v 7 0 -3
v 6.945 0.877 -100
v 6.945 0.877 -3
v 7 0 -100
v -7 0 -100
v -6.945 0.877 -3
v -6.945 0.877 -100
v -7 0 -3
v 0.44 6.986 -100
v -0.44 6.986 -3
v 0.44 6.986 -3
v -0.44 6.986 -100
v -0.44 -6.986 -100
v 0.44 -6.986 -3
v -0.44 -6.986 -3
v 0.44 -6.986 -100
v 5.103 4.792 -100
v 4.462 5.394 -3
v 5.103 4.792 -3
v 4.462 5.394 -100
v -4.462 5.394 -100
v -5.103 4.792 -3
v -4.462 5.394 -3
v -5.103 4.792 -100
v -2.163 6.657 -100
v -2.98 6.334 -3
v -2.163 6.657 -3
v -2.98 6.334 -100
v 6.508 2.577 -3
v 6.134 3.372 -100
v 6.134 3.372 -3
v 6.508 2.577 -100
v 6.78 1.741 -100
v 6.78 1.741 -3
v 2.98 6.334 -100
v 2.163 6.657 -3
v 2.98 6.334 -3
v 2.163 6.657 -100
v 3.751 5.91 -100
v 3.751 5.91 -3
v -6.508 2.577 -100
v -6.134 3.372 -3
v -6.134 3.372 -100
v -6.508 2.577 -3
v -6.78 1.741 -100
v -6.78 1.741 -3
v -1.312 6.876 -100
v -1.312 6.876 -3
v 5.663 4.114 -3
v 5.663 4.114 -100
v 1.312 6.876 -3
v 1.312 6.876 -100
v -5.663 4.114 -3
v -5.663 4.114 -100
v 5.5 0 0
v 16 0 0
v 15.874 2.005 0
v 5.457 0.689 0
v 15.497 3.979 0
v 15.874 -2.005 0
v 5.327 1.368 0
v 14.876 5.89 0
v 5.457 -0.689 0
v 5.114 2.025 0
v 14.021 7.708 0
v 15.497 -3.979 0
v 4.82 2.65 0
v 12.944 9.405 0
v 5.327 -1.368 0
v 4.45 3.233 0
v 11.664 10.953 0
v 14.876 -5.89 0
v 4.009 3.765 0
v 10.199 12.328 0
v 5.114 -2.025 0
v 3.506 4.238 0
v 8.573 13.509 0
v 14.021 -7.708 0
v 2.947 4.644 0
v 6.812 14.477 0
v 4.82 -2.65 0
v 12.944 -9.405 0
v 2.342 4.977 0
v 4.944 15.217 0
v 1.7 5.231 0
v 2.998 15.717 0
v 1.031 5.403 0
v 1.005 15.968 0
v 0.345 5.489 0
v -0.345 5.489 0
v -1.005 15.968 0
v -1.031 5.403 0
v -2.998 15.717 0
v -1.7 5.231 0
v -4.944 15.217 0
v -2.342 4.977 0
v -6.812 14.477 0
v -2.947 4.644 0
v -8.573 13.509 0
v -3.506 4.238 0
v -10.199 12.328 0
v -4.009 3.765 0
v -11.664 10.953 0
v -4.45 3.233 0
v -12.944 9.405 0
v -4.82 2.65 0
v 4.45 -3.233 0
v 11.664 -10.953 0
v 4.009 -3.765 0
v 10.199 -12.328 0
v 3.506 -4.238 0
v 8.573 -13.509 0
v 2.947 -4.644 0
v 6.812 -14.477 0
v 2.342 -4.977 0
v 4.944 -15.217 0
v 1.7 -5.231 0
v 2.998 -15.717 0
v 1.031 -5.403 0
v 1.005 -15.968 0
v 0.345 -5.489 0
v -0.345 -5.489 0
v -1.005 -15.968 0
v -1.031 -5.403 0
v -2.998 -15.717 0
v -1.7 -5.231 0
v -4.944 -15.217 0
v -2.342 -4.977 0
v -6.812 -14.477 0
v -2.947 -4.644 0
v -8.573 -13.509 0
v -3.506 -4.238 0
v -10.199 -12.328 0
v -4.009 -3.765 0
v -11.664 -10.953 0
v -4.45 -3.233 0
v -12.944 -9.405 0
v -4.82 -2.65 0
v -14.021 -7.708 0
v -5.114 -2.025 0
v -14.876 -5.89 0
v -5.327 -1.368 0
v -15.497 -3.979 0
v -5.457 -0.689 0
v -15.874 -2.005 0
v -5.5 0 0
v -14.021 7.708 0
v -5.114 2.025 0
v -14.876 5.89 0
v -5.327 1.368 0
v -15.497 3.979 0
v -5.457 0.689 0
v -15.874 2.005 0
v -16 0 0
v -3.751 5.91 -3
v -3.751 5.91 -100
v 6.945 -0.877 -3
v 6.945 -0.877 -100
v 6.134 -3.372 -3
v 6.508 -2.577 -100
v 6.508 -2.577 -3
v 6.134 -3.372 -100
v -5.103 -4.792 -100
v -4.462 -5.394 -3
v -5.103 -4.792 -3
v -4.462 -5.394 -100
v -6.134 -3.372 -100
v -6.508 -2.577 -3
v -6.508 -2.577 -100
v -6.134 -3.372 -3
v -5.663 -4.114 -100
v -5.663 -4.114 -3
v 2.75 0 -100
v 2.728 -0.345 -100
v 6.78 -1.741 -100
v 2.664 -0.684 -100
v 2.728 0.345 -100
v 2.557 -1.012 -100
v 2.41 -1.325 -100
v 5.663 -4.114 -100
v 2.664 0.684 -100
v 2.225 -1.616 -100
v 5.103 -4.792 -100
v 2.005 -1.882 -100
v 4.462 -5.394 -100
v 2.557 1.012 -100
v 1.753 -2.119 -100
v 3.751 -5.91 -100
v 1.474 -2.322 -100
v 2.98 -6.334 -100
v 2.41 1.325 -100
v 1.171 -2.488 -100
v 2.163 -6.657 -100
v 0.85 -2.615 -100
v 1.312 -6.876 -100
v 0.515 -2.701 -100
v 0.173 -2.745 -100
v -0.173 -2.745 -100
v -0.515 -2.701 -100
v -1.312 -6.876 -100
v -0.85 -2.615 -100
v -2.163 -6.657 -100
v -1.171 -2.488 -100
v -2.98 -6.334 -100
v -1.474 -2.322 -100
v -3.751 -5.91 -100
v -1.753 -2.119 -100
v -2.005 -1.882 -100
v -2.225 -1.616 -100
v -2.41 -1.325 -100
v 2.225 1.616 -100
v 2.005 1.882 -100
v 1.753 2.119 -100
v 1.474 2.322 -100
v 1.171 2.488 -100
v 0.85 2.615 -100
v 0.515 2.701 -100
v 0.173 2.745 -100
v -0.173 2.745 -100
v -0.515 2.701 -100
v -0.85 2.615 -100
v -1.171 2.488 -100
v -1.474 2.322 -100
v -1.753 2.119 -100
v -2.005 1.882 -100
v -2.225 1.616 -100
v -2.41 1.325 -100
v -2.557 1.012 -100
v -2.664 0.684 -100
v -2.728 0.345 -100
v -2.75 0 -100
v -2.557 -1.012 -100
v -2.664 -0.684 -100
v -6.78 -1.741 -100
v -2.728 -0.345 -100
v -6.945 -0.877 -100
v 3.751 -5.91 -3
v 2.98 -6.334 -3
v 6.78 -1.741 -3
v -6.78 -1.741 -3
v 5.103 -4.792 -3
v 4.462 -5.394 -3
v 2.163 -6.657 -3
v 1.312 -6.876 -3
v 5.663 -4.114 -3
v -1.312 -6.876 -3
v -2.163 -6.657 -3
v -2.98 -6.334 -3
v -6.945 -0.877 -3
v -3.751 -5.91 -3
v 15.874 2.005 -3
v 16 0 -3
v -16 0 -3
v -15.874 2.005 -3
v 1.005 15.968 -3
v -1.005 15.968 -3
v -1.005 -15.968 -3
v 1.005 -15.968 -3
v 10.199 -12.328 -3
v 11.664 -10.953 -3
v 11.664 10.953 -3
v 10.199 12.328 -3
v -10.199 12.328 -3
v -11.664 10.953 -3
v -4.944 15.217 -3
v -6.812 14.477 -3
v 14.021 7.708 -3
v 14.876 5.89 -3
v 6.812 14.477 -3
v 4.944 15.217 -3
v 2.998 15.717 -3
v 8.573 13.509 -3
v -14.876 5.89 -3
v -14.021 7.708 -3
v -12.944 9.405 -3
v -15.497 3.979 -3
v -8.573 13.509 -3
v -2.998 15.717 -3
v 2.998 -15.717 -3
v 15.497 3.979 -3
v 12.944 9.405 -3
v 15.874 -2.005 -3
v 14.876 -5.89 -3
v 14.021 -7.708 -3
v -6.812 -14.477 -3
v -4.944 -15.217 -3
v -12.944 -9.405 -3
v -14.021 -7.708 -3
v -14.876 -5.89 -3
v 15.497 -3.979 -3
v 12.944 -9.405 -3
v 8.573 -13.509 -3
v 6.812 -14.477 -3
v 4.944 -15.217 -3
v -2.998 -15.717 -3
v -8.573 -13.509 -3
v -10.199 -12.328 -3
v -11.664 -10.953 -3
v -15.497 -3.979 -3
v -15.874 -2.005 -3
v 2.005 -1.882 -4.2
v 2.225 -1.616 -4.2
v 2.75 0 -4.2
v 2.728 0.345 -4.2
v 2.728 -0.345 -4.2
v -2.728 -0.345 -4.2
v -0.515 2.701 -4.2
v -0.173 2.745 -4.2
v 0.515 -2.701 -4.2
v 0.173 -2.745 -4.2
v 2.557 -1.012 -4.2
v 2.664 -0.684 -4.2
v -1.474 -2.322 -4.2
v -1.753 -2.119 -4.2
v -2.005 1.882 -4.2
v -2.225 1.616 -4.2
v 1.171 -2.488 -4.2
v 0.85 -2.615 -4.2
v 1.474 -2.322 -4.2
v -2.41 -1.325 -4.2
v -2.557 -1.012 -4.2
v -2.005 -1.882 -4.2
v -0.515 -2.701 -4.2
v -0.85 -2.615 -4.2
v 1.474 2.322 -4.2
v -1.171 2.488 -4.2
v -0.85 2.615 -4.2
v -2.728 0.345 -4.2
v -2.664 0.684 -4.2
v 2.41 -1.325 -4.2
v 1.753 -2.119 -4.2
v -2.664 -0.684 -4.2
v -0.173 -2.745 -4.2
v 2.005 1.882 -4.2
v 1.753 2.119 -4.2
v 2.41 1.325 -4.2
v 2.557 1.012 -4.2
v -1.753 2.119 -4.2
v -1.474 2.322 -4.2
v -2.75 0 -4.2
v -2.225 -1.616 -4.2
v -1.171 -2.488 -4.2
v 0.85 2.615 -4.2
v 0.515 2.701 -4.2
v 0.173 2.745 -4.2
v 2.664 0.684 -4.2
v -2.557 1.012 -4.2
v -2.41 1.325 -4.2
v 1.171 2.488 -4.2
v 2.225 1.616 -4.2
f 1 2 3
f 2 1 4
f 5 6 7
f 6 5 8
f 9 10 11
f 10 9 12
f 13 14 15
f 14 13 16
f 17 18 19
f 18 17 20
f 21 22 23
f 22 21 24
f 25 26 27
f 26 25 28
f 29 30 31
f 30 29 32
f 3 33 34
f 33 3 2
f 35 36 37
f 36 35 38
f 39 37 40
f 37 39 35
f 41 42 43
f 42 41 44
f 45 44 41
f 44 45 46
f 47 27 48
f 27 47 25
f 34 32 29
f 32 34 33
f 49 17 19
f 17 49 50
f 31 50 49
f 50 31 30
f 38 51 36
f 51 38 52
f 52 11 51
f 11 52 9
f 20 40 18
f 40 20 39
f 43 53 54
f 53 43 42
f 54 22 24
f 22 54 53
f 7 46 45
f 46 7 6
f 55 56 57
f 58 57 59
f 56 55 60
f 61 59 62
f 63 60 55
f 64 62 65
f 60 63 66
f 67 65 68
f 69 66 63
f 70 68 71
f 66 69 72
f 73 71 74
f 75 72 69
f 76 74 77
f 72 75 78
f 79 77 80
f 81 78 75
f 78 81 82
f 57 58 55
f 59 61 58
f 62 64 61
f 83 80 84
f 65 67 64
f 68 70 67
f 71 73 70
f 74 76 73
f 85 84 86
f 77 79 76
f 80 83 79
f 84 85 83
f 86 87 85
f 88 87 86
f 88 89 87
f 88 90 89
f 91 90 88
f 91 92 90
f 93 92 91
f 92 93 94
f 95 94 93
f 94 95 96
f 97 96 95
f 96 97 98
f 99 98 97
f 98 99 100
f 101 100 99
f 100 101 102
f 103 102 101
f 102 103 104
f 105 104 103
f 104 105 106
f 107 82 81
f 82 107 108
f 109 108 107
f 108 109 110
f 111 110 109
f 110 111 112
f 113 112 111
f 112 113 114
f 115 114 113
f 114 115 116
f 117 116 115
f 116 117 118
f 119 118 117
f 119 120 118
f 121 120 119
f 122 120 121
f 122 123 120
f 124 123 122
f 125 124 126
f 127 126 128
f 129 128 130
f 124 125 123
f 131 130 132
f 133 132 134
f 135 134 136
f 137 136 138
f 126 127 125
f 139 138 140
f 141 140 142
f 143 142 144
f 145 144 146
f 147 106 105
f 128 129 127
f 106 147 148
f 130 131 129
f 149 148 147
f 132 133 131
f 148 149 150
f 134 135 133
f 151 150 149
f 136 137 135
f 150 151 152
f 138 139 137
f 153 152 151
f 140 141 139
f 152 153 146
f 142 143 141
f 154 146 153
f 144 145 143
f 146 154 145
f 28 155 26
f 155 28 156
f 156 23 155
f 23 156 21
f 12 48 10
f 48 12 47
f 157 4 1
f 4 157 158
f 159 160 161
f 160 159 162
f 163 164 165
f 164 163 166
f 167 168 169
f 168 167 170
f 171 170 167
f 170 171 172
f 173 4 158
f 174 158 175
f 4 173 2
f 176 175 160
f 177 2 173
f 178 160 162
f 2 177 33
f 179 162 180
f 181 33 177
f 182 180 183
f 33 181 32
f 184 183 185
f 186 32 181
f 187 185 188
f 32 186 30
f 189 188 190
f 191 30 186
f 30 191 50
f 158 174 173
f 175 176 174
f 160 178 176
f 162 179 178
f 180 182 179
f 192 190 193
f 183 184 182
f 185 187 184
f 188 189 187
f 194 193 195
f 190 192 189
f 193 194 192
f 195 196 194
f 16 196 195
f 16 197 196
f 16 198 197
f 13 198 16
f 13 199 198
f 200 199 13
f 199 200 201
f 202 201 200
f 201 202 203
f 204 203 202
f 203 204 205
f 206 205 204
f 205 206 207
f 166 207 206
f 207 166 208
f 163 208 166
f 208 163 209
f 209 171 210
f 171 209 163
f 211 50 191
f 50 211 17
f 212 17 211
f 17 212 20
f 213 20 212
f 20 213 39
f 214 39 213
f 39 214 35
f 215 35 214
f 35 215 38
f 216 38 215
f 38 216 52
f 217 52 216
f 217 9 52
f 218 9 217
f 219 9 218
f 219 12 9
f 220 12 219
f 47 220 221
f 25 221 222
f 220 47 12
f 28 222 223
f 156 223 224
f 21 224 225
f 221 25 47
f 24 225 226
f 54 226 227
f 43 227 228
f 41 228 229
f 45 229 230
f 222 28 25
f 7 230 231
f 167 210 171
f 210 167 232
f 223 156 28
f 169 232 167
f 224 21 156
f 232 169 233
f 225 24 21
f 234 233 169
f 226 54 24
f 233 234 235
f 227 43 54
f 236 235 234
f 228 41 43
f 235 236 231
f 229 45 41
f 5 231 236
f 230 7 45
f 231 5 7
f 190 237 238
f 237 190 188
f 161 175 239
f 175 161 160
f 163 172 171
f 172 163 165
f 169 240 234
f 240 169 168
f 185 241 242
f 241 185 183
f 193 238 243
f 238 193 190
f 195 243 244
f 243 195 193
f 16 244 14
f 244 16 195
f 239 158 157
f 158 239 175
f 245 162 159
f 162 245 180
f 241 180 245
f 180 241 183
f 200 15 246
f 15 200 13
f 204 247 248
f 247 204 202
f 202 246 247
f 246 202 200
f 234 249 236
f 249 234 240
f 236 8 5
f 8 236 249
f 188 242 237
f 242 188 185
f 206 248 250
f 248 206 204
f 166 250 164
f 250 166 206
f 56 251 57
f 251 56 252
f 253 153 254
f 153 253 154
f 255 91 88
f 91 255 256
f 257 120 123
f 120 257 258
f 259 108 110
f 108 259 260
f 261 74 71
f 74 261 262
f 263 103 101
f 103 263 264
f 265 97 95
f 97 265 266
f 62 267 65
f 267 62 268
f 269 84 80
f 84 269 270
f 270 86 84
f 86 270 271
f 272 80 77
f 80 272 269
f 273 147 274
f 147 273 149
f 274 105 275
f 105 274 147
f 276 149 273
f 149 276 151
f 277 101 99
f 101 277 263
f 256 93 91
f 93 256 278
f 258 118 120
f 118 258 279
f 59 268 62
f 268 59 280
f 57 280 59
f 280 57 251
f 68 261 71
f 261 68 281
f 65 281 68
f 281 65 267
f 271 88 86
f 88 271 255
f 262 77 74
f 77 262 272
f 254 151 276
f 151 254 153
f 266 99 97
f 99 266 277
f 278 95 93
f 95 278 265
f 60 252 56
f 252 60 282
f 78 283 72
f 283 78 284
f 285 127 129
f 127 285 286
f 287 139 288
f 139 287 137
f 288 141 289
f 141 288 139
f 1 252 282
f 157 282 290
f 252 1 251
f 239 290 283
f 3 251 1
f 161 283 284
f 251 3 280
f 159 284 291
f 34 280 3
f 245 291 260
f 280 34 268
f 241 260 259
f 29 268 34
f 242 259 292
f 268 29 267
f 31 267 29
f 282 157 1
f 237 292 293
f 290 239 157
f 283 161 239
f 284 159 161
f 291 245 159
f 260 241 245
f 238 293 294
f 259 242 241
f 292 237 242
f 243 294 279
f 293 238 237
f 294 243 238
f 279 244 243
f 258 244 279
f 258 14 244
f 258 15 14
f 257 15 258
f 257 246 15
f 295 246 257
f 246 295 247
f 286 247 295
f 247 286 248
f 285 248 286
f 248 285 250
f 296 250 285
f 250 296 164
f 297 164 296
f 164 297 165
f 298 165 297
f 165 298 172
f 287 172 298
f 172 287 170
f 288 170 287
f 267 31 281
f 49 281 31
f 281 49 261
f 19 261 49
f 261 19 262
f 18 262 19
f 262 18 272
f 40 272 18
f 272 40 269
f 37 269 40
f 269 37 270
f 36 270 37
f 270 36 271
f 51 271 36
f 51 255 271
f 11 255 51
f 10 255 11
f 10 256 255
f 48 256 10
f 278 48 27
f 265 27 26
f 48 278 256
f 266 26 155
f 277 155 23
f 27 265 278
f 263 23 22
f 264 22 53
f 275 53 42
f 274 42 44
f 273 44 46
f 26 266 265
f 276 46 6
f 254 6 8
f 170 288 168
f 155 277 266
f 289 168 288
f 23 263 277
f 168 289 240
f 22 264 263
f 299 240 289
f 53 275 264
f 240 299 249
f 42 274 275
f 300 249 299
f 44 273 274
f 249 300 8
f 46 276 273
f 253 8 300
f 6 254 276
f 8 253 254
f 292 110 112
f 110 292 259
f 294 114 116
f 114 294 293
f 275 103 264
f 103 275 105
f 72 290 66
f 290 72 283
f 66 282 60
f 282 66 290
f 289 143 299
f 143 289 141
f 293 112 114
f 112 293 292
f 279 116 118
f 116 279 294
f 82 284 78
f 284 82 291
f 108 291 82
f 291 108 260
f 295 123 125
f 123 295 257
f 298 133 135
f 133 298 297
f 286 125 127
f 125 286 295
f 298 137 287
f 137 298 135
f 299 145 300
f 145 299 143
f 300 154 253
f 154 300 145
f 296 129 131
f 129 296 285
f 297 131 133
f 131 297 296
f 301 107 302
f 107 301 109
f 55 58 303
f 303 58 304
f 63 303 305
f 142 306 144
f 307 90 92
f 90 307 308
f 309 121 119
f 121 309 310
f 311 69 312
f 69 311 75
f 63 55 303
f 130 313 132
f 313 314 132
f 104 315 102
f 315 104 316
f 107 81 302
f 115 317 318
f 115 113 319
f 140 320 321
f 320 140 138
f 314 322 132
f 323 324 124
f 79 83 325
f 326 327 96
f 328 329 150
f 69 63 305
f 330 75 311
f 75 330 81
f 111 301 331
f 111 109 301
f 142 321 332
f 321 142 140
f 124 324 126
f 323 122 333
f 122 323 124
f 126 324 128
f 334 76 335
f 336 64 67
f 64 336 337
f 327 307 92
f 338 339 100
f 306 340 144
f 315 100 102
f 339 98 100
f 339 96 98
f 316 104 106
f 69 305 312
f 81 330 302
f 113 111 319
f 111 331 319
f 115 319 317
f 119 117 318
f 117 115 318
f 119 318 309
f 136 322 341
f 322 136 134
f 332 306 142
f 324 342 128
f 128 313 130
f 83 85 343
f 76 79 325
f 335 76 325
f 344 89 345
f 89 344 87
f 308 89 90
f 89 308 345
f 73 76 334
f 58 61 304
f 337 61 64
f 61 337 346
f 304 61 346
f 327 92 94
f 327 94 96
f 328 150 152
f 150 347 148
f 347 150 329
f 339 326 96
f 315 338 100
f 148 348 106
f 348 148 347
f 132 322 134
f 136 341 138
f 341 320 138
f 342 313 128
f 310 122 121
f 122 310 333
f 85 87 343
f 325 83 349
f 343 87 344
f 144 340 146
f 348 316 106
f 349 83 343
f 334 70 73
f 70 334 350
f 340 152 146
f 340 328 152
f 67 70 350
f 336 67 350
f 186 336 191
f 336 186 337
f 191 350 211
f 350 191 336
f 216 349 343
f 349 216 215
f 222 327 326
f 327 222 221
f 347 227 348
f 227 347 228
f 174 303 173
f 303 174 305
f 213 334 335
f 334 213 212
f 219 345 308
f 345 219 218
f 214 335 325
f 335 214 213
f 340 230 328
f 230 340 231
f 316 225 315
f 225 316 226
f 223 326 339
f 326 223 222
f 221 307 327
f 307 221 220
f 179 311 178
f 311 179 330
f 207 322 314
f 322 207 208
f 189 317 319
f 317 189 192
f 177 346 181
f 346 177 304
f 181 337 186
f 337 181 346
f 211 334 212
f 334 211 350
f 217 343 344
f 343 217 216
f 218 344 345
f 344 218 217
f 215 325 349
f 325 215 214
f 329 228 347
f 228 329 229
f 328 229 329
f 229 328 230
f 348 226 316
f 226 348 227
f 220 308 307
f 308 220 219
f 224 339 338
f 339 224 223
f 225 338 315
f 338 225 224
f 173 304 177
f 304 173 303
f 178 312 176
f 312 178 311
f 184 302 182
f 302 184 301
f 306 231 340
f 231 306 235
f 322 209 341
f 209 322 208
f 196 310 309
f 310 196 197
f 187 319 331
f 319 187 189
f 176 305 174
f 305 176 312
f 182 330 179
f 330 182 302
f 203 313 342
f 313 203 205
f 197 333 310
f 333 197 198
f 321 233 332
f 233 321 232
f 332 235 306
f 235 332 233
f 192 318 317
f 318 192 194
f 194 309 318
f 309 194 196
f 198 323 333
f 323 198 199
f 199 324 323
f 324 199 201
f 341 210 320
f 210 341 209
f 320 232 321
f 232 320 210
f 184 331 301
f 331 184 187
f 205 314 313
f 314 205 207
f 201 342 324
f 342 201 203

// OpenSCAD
$fn = 50;


difference() {
	union() {
		translate(v = [0, 0, -100.0000000000]) {
			cylinder(h = 100, r = 7.0000000000);
		}
		translate(v = [0, 0, -3.0000000000]) {
			cylinder(h = 3, r = 16.0000000000);
		}
	}
	union() {
		translate(v = [0, 0, 0]) {
			rotate(a = [0, 0, 0]) {
				difference() {
					union() {
						#translate(v = [0, 0, -100.0000000000]) {
							cylinder(h = 100, r = 2.2500000000);
						}
						#translate(v = [0, 0, -4.2000000000]) {
							cylinder(h = 4.2000000000, r = 7.0000000000, r1 = 2.7500000000, r2 = 5.5000000000);
						}
						#translate(v = [0, 0, -100.0000000000]) {
							cylinder(h = 100, r = 2.7500000000);
						}
						#translate(v = [0, 0, -100.0000000000]) {
							cylinder(h = 100, r = 2.2500000000);
						}
					}
					union();
				}
			}
		}
	}
}
